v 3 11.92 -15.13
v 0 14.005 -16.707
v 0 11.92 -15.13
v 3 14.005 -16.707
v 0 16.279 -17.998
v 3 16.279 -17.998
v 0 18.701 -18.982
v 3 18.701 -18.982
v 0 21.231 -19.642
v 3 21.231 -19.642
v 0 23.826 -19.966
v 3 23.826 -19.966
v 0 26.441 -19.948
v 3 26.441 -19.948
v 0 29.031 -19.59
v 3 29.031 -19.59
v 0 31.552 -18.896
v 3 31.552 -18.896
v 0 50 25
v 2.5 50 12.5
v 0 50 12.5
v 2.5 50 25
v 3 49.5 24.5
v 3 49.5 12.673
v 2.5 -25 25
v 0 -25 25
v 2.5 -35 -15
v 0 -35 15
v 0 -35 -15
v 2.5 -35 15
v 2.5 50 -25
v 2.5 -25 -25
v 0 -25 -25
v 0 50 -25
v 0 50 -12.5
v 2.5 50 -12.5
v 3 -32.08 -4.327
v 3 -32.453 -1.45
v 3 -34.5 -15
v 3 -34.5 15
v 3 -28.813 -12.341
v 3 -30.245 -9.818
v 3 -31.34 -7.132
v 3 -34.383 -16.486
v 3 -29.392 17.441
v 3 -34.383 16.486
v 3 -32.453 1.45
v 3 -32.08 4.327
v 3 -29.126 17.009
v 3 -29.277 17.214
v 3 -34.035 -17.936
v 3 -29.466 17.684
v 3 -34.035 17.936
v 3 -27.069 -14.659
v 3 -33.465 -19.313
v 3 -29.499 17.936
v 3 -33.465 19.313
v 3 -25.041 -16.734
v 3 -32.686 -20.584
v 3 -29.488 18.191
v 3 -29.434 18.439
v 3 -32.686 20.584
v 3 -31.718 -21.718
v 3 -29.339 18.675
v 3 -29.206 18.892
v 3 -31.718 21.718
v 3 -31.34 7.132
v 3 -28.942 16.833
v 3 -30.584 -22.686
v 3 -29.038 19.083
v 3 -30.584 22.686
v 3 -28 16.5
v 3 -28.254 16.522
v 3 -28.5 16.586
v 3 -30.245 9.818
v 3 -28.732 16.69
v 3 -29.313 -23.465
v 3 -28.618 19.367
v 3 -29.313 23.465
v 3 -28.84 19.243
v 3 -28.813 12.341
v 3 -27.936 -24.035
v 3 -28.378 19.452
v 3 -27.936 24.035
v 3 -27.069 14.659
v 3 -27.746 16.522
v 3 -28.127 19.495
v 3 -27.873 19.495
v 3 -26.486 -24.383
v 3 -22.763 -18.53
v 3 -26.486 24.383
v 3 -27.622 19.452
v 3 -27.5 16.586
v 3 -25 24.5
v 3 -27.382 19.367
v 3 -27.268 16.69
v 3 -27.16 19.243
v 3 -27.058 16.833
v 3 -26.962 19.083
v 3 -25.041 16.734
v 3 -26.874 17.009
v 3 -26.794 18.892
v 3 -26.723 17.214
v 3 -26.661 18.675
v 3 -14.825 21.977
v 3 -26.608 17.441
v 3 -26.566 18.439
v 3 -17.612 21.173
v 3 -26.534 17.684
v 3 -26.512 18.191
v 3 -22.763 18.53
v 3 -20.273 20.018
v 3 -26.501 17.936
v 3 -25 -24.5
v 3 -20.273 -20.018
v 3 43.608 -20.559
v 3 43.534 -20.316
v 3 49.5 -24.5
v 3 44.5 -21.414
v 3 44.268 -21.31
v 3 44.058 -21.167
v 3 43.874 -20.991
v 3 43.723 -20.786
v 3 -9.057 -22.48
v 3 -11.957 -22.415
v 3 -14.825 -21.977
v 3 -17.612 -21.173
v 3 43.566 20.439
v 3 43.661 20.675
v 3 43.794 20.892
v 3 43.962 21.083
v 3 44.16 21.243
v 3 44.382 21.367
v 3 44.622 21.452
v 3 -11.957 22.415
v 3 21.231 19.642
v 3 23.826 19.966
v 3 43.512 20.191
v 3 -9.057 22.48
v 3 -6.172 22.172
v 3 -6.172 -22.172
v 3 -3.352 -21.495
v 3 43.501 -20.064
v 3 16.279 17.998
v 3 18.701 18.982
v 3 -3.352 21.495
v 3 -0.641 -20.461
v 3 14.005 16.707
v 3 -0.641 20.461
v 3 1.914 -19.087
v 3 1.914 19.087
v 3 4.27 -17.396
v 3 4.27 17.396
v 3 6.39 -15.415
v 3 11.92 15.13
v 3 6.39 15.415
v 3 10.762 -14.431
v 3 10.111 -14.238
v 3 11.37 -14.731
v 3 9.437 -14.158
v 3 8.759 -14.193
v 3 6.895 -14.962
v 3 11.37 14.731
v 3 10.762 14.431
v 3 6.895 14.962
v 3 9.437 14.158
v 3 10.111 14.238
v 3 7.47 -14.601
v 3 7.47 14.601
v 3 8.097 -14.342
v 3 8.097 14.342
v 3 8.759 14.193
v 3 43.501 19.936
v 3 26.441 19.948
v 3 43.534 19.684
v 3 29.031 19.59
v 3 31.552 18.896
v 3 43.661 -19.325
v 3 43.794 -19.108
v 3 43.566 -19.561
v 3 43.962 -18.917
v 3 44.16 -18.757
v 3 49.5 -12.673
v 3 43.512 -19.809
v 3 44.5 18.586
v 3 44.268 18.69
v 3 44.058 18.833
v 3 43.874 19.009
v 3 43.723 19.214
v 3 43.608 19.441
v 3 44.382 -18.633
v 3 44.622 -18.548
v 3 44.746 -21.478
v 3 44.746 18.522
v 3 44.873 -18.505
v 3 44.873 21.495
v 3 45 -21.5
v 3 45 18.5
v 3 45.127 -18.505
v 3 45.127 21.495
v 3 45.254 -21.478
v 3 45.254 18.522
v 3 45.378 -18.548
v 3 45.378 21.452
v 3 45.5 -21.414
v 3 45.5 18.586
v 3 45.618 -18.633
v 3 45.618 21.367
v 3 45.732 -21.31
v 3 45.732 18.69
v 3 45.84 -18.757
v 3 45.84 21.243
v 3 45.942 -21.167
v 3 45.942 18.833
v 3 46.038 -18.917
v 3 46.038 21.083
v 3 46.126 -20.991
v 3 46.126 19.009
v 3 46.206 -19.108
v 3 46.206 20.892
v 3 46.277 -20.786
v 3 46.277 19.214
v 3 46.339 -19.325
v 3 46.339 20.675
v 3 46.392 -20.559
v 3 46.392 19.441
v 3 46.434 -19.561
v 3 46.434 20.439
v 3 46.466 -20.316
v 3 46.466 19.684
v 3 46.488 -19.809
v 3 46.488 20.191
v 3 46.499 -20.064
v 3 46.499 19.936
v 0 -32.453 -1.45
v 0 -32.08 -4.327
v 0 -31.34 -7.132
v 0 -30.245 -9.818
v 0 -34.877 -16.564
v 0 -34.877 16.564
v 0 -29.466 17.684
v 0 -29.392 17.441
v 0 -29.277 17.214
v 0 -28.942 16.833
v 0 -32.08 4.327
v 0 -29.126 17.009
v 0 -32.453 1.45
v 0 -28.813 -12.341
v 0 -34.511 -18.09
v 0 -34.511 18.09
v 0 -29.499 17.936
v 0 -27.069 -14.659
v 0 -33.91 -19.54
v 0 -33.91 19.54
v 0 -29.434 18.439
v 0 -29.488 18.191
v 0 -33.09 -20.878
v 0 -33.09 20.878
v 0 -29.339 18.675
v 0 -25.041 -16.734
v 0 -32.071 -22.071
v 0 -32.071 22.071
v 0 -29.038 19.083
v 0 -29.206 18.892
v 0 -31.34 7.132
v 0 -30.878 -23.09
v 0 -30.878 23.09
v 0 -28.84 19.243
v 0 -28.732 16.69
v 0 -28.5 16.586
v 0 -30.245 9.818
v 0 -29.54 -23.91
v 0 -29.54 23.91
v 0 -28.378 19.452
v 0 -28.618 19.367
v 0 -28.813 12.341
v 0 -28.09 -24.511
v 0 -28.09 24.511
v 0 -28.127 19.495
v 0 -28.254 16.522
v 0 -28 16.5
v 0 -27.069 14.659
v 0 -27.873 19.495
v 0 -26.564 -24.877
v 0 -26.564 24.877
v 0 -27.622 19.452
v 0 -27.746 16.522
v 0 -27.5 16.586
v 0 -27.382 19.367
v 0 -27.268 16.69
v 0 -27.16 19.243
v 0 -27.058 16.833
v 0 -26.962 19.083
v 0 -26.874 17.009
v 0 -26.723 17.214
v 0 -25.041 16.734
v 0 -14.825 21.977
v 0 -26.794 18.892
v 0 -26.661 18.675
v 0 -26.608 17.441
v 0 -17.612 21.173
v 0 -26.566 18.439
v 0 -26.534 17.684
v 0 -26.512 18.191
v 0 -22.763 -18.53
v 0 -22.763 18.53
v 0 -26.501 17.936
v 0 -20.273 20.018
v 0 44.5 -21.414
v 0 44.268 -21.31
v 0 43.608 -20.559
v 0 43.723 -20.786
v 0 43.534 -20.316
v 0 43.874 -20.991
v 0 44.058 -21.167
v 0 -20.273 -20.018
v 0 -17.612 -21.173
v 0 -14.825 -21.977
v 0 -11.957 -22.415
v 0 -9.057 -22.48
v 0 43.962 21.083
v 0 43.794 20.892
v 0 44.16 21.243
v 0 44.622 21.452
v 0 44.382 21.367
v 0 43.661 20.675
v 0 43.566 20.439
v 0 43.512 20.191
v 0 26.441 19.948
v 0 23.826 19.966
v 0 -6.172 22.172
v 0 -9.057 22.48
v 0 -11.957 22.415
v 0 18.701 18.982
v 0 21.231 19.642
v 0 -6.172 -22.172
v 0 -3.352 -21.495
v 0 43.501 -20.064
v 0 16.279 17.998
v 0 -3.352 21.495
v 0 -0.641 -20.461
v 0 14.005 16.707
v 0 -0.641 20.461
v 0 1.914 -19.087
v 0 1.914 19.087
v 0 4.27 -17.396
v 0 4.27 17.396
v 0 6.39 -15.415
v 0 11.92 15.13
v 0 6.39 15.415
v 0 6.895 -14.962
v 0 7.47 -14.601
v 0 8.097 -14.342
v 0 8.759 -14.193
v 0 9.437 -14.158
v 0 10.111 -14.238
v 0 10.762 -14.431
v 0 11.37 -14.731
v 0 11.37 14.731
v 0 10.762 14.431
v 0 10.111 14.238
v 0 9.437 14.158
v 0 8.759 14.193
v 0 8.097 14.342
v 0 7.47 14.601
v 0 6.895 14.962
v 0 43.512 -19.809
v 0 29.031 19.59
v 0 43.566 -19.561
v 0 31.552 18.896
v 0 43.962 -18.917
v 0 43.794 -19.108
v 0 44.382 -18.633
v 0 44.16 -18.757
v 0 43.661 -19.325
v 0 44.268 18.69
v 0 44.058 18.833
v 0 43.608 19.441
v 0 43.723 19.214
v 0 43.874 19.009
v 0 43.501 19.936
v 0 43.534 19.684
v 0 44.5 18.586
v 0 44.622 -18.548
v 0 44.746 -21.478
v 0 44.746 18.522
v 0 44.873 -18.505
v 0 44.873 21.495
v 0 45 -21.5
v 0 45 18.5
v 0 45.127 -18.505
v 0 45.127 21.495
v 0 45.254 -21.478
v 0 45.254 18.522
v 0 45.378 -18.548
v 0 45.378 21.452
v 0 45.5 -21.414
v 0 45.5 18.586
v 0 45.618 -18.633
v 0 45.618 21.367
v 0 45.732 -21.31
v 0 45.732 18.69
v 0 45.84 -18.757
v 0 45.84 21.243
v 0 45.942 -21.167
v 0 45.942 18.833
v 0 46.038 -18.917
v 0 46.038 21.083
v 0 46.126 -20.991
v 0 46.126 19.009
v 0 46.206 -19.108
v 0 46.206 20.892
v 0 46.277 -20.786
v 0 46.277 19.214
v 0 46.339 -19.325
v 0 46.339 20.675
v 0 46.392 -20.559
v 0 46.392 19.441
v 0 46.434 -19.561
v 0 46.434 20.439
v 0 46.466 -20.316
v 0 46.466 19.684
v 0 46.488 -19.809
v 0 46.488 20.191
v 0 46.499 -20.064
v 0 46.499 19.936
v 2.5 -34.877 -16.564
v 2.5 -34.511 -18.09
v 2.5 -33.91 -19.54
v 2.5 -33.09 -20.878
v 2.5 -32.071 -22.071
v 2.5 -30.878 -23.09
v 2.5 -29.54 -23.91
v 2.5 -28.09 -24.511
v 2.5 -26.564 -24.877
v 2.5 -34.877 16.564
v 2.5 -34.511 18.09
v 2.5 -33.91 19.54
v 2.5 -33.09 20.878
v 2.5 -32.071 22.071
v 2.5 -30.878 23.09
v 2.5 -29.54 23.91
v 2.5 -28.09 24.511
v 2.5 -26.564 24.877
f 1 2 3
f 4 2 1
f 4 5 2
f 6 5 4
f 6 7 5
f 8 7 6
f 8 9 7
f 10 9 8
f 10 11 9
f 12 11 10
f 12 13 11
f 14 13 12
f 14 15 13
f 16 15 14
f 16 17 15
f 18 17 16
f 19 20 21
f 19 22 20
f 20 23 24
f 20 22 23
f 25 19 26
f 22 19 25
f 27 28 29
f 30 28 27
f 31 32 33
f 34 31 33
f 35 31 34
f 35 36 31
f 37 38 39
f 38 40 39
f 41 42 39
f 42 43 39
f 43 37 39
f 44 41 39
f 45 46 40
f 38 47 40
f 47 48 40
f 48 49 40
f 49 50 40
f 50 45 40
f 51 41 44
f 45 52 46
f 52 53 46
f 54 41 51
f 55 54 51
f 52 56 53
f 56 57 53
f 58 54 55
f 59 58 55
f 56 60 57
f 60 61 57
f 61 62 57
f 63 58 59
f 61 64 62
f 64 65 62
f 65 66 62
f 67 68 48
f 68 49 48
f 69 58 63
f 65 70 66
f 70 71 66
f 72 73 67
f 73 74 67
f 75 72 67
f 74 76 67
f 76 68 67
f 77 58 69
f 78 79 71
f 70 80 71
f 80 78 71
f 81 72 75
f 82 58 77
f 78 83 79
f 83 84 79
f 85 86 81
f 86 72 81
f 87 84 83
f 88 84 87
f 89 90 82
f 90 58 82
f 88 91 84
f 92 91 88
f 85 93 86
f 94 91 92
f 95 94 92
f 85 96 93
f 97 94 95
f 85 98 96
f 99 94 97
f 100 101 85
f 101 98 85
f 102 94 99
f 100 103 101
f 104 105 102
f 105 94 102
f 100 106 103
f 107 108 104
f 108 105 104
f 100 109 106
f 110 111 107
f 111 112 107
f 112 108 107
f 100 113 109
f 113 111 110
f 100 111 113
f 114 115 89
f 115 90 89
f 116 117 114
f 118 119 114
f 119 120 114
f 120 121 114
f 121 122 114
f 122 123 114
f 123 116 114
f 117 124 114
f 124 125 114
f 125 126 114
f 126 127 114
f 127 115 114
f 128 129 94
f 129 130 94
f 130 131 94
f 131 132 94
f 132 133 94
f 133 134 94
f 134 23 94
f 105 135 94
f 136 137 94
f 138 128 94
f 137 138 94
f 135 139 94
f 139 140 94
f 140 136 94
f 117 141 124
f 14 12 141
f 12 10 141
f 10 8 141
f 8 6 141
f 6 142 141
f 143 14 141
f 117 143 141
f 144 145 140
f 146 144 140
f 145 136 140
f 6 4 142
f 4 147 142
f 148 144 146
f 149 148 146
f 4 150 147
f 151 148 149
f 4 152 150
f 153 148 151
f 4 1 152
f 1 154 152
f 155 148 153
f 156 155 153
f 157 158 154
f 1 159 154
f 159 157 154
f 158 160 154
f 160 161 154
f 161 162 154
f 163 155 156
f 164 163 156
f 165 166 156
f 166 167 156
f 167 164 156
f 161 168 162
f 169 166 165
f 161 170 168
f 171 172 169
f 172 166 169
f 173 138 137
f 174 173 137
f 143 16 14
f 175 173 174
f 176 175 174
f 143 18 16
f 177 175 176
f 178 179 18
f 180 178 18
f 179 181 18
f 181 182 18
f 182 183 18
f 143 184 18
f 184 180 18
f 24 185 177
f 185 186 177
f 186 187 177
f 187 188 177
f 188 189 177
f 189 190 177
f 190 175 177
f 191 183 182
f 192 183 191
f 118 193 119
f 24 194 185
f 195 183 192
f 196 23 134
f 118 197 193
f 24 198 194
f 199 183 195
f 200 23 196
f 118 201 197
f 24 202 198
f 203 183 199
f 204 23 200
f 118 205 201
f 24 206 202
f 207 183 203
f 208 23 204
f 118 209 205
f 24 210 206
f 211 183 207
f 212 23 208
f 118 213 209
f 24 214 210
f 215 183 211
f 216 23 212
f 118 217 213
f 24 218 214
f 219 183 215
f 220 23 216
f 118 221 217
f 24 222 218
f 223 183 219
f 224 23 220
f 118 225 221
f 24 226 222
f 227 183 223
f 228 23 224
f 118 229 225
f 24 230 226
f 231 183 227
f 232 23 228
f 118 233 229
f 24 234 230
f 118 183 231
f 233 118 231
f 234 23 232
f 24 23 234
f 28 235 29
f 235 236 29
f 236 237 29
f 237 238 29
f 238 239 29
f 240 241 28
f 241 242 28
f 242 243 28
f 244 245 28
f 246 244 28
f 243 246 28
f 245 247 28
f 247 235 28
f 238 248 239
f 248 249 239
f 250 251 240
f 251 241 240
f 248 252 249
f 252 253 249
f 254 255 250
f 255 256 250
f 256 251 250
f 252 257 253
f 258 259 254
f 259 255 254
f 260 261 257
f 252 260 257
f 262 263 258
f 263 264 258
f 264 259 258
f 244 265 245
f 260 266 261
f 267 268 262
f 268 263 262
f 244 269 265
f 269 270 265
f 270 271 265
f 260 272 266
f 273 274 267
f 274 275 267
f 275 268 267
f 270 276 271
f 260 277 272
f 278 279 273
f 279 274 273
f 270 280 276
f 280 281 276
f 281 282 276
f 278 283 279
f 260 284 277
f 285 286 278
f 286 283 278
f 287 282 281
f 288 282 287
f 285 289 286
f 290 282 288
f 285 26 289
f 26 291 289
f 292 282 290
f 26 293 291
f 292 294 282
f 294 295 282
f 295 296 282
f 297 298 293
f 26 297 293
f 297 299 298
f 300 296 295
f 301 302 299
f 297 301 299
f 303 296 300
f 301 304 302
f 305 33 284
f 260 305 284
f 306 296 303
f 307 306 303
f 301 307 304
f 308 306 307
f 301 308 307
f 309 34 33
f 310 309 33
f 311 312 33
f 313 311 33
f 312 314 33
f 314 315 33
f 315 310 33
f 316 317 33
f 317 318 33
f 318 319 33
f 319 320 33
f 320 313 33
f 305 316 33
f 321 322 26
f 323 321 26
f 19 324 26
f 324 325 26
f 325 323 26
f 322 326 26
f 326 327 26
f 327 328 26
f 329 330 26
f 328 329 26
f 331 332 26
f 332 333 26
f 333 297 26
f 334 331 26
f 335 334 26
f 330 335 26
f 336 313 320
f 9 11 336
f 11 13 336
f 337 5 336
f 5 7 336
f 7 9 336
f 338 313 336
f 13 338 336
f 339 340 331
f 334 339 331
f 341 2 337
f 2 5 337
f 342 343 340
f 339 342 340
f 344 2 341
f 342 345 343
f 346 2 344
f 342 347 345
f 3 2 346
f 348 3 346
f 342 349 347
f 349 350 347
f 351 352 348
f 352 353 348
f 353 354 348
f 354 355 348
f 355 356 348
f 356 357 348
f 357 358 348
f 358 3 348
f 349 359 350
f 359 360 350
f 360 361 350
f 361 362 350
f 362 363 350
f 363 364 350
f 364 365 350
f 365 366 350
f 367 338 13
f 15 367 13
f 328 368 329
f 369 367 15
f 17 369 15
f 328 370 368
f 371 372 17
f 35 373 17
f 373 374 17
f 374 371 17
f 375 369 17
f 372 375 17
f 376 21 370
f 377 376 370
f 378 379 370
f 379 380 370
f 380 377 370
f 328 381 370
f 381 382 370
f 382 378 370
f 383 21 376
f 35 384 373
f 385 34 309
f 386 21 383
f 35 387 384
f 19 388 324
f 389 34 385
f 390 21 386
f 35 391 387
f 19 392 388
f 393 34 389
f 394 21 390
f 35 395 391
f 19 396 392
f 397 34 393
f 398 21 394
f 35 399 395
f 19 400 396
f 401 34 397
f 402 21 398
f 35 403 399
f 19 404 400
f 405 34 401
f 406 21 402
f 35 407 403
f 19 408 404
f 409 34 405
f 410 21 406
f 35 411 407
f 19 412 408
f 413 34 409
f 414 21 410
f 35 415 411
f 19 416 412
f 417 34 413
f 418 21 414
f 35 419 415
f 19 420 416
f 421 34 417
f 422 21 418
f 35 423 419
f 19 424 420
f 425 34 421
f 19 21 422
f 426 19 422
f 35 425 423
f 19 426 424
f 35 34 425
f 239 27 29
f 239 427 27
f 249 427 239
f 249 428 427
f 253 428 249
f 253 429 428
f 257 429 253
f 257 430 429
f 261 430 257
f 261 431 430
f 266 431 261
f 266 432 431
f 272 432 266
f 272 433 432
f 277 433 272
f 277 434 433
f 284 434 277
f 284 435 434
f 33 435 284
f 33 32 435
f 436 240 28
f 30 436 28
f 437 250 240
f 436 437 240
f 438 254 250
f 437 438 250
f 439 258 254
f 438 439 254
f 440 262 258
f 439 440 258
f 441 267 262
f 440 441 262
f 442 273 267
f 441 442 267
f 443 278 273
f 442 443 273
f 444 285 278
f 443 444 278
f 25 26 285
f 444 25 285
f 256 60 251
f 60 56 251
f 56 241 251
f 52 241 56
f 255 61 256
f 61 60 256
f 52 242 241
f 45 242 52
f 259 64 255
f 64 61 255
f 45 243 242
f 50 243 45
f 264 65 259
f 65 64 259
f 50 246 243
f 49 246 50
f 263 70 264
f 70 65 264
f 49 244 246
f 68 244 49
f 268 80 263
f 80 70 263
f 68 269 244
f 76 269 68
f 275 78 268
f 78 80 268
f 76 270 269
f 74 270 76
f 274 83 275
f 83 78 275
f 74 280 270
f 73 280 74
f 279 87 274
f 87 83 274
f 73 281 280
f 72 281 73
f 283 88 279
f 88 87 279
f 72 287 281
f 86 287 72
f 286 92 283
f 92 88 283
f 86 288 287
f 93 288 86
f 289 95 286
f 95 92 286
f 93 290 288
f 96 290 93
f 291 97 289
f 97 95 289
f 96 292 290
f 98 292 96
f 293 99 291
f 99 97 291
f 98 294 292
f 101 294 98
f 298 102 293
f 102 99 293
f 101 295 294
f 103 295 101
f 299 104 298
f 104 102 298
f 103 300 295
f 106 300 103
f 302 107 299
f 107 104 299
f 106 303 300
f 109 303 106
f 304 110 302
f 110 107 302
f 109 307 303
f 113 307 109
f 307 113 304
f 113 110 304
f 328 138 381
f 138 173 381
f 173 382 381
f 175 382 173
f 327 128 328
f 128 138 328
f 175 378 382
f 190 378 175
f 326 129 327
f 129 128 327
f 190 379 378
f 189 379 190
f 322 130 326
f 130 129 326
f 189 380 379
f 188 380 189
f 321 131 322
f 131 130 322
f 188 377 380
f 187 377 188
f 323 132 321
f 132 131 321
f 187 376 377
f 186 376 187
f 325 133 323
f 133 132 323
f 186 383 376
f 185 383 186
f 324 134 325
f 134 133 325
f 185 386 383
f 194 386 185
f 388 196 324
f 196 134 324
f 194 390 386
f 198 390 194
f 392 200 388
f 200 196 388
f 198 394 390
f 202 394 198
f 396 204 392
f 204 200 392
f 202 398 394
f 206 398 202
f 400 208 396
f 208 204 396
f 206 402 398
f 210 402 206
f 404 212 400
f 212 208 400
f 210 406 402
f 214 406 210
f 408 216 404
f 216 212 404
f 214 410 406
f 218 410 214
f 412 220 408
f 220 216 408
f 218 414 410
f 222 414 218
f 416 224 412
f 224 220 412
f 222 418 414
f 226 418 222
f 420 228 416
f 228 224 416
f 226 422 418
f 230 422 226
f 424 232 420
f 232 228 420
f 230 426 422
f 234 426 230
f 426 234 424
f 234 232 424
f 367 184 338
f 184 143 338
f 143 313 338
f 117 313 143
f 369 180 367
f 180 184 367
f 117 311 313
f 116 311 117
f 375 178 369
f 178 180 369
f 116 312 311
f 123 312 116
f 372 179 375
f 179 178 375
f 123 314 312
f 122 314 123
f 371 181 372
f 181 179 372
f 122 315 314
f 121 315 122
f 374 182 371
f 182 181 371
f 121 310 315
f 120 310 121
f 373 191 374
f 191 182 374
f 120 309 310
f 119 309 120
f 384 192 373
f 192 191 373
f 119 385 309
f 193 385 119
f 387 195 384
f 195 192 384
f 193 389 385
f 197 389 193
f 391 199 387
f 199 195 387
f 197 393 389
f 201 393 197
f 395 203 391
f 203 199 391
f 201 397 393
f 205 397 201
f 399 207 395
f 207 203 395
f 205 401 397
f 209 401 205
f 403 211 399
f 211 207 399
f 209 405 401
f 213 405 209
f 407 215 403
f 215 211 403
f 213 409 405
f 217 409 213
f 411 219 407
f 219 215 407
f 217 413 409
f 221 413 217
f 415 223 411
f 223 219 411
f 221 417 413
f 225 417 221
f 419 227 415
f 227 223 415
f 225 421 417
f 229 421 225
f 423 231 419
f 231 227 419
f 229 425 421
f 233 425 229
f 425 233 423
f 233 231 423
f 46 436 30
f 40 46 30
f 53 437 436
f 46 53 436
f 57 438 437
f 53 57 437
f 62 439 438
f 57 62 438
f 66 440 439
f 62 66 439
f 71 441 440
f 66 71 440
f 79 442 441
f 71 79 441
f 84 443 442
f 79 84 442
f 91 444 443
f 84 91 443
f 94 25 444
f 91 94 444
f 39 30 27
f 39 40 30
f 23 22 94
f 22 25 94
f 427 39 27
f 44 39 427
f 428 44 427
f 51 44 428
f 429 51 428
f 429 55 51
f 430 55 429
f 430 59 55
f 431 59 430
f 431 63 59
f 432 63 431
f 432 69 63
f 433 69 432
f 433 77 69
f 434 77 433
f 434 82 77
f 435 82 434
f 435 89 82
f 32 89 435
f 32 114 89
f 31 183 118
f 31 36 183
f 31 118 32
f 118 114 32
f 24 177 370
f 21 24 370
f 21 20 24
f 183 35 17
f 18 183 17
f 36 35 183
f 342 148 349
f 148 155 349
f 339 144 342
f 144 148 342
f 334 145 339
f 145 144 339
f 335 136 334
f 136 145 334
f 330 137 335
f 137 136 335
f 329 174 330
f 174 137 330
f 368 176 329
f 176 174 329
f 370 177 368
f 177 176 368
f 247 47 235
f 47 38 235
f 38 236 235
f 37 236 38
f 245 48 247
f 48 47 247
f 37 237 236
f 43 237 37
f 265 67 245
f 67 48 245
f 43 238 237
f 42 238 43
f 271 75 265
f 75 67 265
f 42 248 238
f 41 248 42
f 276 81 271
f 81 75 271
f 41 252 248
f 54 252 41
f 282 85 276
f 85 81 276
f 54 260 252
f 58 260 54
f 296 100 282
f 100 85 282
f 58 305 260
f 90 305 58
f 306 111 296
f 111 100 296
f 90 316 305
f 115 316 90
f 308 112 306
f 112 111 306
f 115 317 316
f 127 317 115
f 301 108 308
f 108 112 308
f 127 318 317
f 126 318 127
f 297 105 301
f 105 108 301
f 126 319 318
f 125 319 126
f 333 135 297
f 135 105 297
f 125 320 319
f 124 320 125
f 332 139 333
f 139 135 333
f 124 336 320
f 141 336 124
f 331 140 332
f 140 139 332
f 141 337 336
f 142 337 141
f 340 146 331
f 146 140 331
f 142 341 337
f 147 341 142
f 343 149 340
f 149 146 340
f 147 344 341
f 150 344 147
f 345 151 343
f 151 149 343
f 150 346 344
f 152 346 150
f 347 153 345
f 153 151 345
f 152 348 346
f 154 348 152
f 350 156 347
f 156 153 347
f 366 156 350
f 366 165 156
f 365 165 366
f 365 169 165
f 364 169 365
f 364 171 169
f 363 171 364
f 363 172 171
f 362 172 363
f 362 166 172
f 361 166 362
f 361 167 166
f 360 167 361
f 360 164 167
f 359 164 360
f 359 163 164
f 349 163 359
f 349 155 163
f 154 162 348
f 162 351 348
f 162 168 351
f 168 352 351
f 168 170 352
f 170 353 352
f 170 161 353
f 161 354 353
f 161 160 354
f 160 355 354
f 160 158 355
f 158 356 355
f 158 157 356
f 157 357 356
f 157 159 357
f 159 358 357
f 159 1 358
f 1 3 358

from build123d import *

# Parameters (mm, degrees)
SKETCH_1_W          = 50
SKETCH_1_H          = 85
EXTRUDE_1_DEPTH     = 3
FILLET_2_R          = 10
SKETCH_4_R          = 1.5
CUT_EXTRUDE_1_DEPTH = 3
CHAMFER_1_SIZE      = 0.5
CUT_EXTRUDE_3_DEPTH = 3
SKETCH_7_R          = 22.5
CUT_EXTRUDE_4_DEPTH = 3
FILLET_4_R          = 4


with BuildPart() as part:
    # 草图1 → 凸台-拉伸1 (new body)
    with BuildSketch(Plane(origin=(0, 0, 0), x_dir=(0, 0, -1), z_dir=(1, 0, 0))):
        with Locations((0, 7.5)):
            Rectangle(SKETCH_1_W, SKETCH_1_H)
    extrude(amount=EXTRUDE_1_DEPTH)

    # 圆角2
    fillet_2_edges = [part.edges().sort_by_distance(p)[0] for p in [
        (1.5, -35, -25),
        (1.5, -35, 25),
    ]]
    fillet(fillet_2_edges, radius=FILLET_2_R)

    # 草图4 → 切除-拉伸1 (cut)
    with BuildSketch(Plane(origin=(3, 0, 0), x_dir=(0, 0, -1), z_dir=(1, 0, 0))):
        with Locations((20, 45)):
            Circle(SKETCH_4_R)
        with Locations((-20, 45)):
            Circle(SKETCH_4_R)
        with Locations((-18, -28)):
            Circle(SKETCH_4_R)
    extrude(amount=-CUT_EXTRUDE_1_DEPTH, mode=Mode.SUBTRACT)

    # 倒角1
    chamfer_1_edges = [part.edges().sort_by_distance(p)[0] for p in [
        (3, 12.5, -25),
        (3, 50, 0),
        (3, -35, 0),
        (3, -32.071067812, 22.071067812),
        (3, -32.071067812, -22.071067812),
        (3, 12.5, 25),
    ]]
    chamfer(chamfer_1_edges, length=CHAMFER_1_SIZE)

    # 草图6 → 切除-拉伸3 (cut)
    with BuildSketch(Plane(origin=(3, 0, 0), x_dir=(0, 0, -1), z_dir=(1, 0, 0))):
        with BuildLine():
            Line((-12.5, 50), (12.5, 50))
            Line((12.5, 50), (18.896399481, 31.551800259))
            ThreePointArc((18.896399481, 31.551800259), (0, 5), (-18.896399481, 31.551800259))
            Line((-18.896399481, 31.551800259), (-12.5, 50))
        make_face()
    extrude(amount=-CUT_EXTRUDE_3_DEPTH, mode=Mode.SUBTRACT)

    # 草图7 → 切除-拉伸4 (cut)
    with BuildSketch(Plane(origin=(3, 0, 0), x_dir=(0, 0, -1), z_dir=(1, 0, 0))):
        with Locations((0, -10)):
            Circle(SKETCH_7_R)
    extrude(amount=-CUT_EXTRUDE_4_DEPTH, mode=Mode.SUBTRACT)

    # 圆角4
    fillet_4_edges = [part.edges().sort_by_distance(p)[0] for p in [
        (1.5, 9.017857143, 12.02377269),
        (1.5, 9.017857143, -12.02377269),
    ]]
    fillet(fillet_4_edges, radius=FILLET_4_R)


solid = part.part
